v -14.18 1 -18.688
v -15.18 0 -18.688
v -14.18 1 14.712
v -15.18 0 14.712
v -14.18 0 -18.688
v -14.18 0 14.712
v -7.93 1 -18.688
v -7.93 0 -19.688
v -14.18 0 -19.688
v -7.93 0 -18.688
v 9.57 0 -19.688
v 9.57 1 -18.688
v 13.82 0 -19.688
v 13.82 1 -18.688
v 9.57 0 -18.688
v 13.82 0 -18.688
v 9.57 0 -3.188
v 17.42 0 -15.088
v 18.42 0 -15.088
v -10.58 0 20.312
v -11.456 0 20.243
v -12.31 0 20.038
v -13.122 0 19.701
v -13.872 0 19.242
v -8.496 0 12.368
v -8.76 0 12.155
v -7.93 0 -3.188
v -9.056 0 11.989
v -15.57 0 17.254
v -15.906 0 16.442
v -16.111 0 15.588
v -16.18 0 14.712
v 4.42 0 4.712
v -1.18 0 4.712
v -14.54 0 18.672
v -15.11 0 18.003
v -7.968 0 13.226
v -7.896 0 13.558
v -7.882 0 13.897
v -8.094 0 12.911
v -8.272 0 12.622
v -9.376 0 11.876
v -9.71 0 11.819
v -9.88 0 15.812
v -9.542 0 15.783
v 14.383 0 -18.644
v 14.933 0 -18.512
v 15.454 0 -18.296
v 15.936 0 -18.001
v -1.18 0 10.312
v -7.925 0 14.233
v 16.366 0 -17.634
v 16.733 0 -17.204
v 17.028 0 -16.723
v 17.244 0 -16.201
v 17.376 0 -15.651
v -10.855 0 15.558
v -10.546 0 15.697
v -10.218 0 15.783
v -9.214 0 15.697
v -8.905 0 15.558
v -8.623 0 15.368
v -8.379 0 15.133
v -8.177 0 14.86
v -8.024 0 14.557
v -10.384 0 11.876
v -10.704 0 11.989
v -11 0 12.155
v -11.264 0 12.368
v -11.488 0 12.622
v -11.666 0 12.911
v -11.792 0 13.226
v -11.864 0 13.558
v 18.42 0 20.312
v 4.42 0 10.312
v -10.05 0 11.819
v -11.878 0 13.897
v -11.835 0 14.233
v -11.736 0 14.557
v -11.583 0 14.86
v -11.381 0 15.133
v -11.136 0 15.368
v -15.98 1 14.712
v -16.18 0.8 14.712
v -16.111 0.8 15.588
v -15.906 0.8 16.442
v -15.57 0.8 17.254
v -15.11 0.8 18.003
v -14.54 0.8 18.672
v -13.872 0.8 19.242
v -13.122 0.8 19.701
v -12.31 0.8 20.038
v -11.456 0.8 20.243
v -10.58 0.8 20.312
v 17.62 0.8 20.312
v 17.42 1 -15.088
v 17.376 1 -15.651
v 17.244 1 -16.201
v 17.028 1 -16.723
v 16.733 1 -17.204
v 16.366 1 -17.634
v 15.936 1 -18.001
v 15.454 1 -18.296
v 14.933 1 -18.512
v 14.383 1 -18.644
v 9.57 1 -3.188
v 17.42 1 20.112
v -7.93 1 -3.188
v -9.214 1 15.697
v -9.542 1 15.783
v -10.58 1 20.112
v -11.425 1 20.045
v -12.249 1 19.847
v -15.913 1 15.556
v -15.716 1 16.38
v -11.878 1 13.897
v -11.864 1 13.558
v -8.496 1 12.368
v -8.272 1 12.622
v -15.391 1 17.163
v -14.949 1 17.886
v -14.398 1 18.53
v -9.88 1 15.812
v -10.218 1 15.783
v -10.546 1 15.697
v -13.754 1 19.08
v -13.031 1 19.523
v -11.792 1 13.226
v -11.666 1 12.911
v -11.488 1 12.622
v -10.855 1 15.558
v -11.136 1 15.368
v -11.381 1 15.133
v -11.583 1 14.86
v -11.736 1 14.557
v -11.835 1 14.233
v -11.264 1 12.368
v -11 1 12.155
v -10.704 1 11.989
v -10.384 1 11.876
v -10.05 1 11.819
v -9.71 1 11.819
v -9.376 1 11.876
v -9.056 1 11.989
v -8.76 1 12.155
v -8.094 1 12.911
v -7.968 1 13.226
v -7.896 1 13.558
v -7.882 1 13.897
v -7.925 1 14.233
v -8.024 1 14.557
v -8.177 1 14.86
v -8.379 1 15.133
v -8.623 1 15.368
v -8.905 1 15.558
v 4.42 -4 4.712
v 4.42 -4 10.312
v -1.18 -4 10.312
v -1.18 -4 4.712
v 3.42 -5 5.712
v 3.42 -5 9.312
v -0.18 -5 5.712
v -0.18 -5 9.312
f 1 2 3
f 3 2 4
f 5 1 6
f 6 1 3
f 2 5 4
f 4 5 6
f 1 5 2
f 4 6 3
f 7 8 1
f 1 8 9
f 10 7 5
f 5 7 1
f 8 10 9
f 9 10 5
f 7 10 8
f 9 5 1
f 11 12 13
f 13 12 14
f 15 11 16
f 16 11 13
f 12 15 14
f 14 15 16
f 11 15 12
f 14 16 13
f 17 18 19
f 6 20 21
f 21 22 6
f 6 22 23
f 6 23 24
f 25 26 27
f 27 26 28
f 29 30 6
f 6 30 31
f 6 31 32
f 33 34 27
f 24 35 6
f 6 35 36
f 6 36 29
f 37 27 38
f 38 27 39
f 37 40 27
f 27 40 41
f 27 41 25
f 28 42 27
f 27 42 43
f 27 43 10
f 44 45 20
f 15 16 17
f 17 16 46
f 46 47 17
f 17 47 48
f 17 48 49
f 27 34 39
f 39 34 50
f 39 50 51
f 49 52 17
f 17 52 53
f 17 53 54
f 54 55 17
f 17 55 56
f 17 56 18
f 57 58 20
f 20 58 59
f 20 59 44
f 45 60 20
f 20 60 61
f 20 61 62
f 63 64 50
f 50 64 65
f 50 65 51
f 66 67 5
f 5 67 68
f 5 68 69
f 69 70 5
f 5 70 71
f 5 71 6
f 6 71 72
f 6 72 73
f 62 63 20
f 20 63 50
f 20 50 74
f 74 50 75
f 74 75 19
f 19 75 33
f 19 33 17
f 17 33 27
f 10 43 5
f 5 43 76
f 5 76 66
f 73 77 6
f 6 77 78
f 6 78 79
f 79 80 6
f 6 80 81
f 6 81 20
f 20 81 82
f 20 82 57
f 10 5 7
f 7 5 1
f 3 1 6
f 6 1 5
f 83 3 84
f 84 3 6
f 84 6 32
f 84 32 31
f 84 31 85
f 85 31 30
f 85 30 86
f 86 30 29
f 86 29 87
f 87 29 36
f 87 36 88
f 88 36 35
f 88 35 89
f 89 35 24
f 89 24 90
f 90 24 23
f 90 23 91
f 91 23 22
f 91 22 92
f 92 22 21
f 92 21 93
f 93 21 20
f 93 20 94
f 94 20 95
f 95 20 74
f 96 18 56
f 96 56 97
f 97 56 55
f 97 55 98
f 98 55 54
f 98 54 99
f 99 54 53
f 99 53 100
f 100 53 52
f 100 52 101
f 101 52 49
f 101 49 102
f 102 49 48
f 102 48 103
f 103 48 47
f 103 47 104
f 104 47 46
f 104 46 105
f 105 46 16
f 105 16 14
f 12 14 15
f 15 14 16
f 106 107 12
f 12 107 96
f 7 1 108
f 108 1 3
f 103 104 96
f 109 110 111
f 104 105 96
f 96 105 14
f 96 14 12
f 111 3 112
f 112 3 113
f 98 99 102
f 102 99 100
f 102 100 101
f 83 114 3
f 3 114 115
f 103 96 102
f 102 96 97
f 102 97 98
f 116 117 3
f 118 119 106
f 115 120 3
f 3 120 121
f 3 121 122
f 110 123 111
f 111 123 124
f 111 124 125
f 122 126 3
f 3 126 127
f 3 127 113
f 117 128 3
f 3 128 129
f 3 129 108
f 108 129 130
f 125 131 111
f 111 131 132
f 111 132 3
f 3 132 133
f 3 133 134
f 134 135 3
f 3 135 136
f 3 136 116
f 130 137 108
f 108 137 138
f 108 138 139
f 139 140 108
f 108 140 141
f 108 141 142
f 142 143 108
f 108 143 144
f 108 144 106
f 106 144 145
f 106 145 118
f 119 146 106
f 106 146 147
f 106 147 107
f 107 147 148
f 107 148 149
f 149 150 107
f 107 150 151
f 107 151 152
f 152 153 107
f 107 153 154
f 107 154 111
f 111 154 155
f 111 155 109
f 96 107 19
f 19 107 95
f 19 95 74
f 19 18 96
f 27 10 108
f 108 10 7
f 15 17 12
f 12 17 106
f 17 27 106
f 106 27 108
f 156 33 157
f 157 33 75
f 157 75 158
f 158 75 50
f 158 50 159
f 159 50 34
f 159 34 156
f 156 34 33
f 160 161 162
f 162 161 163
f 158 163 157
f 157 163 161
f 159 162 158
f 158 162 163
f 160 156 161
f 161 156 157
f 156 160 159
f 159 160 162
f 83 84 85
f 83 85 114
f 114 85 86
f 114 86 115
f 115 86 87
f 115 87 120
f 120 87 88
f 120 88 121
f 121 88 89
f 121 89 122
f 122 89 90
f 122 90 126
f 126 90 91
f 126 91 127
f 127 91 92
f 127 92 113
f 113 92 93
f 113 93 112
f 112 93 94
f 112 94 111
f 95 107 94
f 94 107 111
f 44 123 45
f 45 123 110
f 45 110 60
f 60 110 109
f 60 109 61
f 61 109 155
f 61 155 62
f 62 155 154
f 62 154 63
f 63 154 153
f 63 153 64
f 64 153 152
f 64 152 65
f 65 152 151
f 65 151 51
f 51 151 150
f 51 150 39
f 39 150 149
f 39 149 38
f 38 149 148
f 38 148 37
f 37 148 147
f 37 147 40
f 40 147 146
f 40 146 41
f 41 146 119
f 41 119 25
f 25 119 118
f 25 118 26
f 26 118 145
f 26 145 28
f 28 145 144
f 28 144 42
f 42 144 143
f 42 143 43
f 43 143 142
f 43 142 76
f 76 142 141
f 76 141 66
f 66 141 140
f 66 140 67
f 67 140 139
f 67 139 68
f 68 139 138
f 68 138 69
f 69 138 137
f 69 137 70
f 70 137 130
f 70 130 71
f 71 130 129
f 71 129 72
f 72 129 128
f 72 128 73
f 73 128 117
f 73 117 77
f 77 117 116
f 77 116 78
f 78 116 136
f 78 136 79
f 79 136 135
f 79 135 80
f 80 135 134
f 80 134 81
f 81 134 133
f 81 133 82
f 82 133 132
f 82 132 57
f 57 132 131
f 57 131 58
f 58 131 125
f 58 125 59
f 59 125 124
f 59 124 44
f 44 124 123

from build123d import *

# Parameters (mm, degrees)
EXTRUDE_1_DEPTH     = 1
EXTRUDE_2_DEPTH     = 33.4
EXTRUDE_3_DEPTH     = 6.25
EXTRUDE_4_DEPTH     = 4.25
EXTRUDE_5_DEPTH     = 35.4
SKETCH_6_W          = 17.5
SKETCH_6_H          = 15.5
CUT_EXTRUDE_1_DEPTH = 2
SKETCH_7_W          = 5.6
SKETCH_7_H          = 5.6
EXTRUDE_6_DEPTH     = 5
CHAMFER_2_SIZE      = 1
CHAMFER_3_SIZE      = 0.2
SKETCH_9_R          = 2
CUT_EXTRUDE_3_DEPTH = 1


with BuildPart() as part:
    # 草图1 → 凸台-拉伸1 (new body)
    with BuildSketch(Plane(origin=(0, 0, 0), x_dir=(1, 0, 0), z_dir=(0, 1, 0))):
        with BuildLine():
            Line((-14.17993762, 18.688260597), (13.82006238, 18.688260597))
            ThreePointArc((13.82006238, 18.688260597), (16.365646792, 17.63384501), (17.42006238, 15.088260597))
            Line((17.42006238, 15.088260597), (17.42006238, -20.311739403))
            Line((17.42006238, -20.311739403), (-10.57993762, -20.311739403))
            ThreePointArc((-10.57993762, -20.311739403), (-14.539735595, -18.671537377), (-16.17993762, -14.711739403))
            Line((-16.17993762, -14.711739403), (-14.17993762, -14.711739403))
            Line((-14.17993762, -14.711739403), (-14.17993762, 18.688260597))
        make_face()
    extrude(amount=EXTRUDE_1_DEPTH)

    # 草图5 → 凸台-拉伸5 (add)
    with BuildSketch(Plane.XY.offset(20.311739403)):
        Polygon((17.42006238, 1), (17.42006238, 0), (18.42006238, 0), align=None)
    extrude(amount=-EXTRUDE_5_DEPTH)

    # 草图6 → 切除-拉伸1 (cut, through all)
    with BuildSketch(Plane(origin=(0, 1, 0), x_dir=(1, 0, 0), z_dir=(0, 1, 0))):
        with Locations((0.82006238, 10.938260597)):
            Rectangle(SKETCH_6_W, SKETCH_6_H)
    extrude(amount=-CUT_EXTRUDE_1_DEPTH, mode=Mode.SUBTRACT)

    # 草图7 → 凸台-拉伸6 (add)
    with BuildSketch(Plane.XZ):
        with Locations((1.62006238, 7.511739403)):
            Rectangle(SKETCH_7_W, SKETCH_7_H)
    extrude(amount=EXTRUDE_6_DEPTH)

    # 倒角2
    chamfer_2_edges = [part.edges().sort_by_distance(p)[0] for p in [
        (4.42006238, -5, 7.511739403),
        (1.62006238, -5, 10.311739403),
        (-1.17993762, -5, 7.511739403),
        (1.62006238, -5, 4.711739403),
    ]]
    chamfer(chamfer_2_edges, length=CHAMFER_2_SIZE)

    # 倒角3
    chamfer_3_edges = [part.edges().sort_by_distance(p)[0] for p in [
        (-14.539735595, 1, 18.671537377),
        (3.42006238, 1, 20.311739403),
    ]]
    chamfer(chamfer_3_edges, length=CHAMFER_3_SIZE)

    # 草图9 → 切除-拉伸3 (cut)
    with BuildSketch(Plane(origin=(0, 1, 0), x_dir=(1, 0, 0), z_dir=(0, 1, 0))):
        with Locations((-9.87993762, -13.811739403)):
            Circle(SKETCH_9_R)
    extrude(amount=-CUT_EXTRUDE_3_DEPTH, mode=Mode.SUBTRACT)


with BuildPart() as body_2:
    # 草图2 → 凸台-拉伸2 (new body)
    with BuildSketch(Plane(origin=(0, 0, 14.711739403), x_dir=(-1, 0, 0), z_dir=(0, 0, -1))):
        Polygon((14.17993762, 1), (14.17993762, 0), (15.17993762, 0), align=None)
    extrude(amount=EXTRUDE_2_DEPTH)


with BuildPart() as body_3:
    # 草图3 → 凸台-拉伸3 (new body)
    with BuildSketch(Plane.ZY.offset(14.17993762)):
        Polygon((-18.688260597, 1), (-18.688260597, 0), (-19.688260597, 0), align=None)
    extrude(amount=-EXTRUDE_3_DEPTH)


with BuildPart() as body_4:
    # 草图4 → 凸台-拉伸4 (new body)
    with BuildSketch(Plane.ZY.offset(-13.82006238)):
        Polygon((-18.688260597, 1), (-18.688260597, 0), (-19.688260597, 0), align=None)
    extrude(amount=EXTRUDE_4_DEPTH)


solid = Compound([part.part, body_2.part, body_3.part, body_4.part])
